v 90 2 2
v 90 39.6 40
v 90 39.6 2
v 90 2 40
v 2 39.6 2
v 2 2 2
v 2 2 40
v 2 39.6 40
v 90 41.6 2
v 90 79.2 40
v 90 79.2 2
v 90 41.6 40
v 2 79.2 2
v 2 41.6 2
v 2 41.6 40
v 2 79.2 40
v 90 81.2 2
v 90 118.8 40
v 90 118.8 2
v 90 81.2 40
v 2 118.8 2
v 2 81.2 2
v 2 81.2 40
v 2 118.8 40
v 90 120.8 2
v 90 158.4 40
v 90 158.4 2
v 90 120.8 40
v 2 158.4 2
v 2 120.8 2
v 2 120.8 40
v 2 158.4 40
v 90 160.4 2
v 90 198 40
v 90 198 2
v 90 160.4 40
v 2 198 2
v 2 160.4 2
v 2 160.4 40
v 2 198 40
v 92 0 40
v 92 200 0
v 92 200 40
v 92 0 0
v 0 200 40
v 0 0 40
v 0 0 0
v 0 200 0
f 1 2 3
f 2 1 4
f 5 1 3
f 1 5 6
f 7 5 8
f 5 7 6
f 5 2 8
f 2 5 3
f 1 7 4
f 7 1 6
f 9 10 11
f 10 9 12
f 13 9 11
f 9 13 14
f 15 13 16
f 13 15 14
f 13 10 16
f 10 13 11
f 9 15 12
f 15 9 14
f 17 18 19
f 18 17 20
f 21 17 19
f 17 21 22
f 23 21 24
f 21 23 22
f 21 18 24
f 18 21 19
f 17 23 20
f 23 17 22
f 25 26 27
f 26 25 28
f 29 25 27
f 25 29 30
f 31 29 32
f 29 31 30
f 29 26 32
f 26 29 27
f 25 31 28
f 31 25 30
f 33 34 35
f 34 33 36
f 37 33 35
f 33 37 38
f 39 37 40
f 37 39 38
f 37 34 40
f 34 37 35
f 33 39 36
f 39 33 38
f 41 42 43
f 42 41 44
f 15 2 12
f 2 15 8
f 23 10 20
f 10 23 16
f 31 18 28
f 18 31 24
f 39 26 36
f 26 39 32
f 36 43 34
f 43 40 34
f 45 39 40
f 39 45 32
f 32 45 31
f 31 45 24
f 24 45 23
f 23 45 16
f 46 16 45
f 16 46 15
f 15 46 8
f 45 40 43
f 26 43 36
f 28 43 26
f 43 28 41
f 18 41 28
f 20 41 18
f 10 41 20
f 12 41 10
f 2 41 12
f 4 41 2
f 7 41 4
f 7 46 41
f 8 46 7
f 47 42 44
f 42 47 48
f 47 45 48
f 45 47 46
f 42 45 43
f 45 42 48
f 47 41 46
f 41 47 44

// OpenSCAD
// Parametric spice box
width = 92;
depth = 200;
height = 40;
thickness = 2;
compartments = 5; // number of compartments in the depth direction

// Derived values
compartmentWidth = width - 2 * thickness;
compartmentDepth = (depth - (compartments + 1) * thickness) / compartments;

difference() {
    cube([width, depth, height]);

    for (i = [0 : compartments - 1]) {
        translate([
            thickness,
            thickness + i * (compartmentDepth + thickness),
            thickness
        ])
        cube([compartmentWidth, compartmentDepth, height]);
    }
}
